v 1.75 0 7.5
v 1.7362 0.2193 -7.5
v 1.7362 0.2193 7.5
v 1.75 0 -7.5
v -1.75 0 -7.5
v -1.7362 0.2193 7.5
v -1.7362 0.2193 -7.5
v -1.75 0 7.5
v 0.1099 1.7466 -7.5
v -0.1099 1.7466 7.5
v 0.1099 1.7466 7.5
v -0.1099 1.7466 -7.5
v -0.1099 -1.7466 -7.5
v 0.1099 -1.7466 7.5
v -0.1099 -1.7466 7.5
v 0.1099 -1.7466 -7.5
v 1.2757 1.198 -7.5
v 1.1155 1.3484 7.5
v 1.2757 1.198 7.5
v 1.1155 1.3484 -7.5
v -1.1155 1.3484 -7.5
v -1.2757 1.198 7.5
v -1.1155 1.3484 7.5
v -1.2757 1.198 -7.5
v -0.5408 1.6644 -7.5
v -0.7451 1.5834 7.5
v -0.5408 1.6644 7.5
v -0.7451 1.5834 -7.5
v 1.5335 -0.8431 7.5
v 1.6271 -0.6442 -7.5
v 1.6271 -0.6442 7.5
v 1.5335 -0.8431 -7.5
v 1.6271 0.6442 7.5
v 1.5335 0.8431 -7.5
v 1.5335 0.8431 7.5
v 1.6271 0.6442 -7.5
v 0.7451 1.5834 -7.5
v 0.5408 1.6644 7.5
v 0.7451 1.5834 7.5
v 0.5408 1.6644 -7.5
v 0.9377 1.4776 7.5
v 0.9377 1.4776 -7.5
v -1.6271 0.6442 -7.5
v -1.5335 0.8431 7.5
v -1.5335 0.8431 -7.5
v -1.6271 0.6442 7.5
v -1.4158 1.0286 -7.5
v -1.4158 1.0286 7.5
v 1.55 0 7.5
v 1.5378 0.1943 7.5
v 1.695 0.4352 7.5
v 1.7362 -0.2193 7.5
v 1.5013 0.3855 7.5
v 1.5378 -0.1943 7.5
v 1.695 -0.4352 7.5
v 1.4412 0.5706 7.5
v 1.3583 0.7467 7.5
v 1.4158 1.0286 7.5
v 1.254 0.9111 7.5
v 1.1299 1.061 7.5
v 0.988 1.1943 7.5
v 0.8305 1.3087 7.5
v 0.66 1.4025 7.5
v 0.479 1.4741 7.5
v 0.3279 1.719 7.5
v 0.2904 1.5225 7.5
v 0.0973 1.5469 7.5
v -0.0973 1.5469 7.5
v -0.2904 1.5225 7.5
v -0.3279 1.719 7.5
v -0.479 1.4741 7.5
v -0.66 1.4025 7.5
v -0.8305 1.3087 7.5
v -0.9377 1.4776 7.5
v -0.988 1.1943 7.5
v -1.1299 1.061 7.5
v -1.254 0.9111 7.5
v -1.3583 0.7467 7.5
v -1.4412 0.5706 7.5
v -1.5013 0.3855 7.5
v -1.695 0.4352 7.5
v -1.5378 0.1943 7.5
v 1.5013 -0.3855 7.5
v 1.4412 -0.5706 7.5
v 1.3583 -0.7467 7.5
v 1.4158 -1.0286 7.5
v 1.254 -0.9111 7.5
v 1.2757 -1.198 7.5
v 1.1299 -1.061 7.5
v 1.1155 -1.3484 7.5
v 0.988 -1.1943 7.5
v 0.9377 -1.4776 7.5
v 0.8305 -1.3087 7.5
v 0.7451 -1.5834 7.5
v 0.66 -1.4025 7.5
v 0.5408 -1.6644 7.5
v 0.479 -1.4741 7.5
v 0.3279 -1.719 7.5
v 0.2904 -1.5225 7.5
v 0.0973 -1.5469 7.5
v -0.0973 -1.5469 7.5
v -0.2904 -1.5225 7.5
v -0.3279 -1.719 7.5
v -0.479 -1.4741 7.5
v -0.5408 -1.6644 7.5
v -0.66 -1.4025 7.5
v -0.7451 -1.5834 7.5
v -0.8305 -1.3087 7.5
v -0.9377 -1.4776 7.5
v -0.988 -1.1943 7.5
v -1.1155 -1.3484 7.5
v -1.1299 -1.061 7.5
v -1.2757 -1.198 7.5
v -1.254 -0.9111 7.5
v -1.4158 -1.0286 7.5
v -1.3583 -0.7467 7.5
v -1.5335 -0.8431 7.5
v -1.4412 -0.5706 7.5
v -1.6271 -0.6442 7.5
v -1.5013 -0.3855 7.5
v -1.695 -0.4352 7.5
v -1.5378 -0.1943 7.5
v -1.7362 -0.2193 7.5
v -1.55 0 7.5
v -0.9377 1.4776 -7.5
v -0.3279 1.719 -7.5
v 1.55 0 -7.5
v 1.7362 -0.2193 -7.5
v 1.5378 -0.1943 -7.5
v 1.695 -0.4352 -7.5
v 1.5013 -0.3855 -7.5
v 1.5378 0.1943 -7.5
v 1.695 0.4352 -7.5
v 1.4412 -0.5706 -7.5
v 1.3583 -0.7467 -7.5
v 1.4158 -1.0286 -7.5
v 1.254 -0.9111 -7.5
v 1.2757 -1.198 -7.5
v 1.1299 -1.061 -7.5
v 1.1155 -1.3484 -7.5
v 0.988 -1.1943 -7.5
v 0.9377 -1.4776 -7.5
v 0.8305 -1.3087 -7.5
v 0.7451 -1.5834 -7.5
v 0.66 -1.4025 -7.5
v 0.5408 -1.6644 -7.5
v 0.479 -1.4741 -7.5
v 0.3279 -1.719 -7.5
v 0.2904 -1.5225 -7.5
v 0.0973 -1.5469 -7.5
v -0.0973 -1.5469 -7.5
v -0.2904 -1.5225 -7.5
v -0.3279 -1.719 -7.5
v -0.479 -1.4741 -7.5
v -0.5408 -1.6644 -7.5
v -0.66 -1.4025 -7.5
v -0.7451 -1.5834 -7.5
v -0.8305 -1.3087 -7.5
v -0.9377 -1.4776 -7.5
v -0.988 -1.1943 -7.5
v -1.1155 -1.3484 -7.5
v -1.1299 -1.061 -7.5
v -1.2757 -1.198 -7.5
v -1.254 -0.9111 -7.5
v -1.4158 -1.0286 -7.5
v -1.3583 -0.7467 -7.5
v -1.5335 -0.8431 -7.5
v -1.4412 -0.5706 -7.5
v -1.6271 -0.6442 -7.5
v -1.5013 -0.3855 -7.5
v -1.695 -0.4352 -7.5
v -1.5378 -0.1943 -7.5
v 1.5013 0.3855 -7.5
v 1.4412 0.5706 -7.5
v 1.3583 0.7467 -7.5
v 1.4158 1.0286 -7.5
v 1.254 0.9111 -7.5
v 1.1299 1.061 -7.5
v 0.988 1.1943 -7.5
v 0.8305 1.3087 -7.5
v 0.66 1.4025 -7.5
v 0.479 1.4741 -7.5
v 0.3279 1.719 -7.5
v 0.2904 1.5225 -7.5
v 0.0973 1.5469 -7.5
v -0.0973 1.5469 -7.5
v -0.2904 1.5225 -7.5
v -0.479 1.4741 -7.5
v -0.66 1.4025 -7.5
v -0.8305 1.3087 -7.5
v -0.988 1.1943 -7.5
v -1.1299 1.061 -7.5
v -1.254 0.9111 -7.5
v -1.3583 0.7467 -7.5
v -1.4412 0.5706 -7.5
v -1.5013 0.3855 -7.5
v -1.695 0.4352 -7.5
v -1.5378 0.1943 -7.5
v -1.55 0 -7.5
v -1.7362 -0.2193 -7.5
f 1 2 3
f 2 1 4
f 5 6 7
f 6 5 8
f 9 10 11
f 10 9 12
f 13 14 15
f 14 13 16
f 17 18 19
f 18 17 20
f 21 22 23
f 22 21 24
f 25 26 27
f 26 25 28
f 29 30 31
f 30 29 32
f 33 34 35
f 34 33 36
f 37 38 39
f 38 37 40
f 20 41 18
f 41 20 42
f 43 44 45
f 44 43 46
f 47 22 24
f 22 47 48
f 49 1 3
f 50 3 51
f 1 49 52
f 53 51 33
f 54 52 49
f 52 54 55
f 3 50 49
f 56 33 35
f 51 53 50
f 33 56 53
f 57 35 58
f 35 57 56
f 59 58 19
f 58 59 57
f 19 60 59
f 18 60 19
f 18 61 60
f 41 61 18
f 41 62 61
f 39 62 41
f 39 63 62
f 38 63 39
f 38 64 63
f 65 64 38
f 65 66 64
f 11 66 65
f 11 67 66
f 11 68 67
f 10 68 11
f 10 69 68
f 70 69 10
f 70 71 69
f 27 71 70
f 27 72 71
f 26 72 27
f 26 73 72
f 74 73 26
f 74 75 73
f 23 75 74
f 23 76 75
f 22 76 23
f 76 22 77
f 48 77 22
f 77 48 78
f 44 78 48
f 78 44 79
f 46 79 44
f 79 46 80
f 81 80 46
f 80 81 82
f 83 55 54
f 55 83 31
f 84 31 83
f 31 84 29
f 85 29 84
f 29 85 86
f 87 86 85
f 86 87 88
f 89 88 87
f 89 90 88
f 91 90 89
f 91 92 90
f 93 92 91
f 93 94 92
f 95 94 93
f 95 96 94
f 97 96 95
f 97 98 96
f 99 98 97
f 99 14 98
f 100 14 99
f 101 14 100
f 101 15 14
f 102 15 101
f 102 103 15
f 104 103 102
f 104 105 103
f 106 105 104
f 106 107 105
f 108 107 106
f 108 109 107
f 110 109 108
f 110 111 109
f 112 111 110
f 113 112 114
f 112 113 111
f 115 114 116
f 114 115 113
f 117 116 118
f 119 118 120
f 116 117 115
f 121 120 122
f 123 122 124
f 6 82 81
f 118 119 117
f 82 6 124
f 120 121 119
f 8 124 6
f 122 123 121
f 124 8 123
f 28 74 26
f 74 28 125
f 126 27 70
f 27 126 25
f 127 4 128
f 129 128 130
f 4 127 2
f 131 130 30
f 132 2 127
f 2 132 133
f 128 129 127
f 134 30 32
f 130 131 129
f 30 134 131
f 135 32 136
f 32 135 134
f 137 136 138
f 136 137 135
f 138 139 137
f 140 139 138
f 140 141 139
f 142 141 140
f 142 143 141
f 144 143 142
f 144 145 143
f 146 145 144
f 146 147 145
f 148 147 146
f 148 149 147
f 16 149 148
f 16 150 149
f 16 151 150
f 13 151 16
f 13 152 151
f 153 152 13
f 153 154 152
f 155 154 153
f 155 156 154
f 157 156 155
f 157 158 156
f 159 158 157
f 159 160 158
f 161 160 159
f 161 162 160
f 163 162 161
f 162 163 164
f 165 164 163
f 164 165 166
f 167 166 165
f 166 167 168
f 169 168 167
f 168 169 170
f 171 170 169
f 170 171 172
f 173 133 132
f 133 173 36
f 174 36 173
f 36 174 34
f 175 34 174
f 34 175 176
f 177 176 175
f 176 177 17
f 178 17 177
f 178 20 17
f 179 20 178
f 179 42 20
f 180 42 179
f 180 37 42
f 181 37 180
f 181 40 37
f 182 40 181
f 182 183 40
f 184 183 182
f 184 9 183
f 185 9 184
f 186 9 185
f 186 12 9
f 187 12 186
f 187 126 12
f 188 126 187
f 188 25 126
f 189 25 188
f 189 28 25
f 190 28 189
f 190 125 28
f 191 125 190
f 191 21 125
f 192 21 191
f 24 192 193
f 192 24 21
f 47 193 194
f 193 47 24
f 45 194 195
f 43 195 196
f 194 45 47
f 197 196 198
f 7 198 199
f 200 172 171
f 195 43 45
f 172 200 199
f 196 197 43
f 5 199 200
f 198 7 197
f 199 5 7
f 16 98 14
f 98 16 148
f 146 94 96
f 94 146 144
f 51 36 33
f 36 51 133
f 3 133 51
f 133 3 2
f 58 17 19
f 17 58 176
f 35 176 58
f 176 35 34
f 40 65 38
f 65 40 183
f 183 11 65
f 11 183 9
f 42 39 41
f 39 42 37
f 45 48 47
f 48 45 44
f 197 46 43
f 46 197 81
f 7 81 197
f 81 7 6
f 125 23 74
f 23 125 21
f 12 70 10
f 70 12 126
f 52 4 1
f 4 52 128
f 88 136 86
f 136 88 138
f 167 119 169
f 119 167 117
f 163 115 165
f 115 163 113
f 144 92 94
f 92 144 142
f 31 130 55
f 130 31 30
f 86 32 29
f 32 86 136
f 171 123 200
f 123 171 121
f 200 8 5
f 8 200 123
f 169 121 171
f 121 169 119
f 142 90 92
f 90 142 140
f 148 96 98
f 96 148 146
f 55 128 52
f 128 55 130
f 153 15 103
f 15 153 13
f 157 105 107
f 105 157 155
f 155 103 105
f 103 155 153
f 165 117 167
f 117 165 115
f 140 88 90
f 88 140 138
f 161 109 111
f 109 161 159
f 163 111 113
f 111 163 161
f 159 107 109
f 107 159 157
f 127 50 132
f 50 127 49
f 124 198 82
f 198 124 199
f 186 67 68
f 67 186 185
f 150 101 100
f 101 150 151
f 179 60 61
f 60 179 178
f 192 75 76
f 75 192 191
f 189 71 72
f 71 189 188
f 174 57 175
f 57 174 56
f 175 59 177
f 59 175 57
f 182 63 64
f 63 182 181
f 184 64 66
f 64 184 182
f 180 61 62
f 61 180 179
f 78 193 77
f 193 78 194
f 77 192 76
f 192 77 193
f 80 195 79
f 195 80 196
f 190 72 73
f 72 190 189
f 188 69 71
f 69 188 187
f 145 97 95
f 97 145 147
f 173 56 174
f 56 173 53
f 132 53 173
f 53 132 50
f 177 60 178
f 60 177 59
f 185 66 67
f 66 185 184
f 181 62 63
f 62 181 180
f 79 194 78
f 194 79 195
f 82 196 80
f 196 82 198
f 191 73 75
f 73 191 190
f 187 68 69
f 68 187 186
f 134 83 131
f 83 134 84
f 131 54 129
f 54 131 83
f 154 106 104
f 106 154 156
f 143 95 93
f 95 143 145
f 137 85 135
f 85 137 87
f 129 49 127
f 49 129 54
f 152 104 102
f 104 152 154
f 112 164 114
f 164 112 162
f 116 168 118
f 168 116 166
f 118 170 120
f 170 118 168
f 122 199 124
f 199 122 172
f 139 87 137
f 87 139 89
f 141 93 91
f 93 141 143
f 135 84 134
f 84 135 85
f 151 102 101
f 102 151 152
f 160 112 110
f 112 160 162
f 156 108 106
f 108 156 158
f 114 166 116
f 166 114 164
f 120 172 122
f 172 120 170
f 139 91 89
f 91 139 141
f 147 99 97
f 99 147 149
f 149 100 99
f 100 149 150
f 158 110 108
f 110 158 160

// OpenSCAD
$fn = 50;


difference() {
	union() {
		translate(v = [0, 0, -7.5000000000]) {
			cylinder(h = 15, r = 1.7500000000);
		}
	}
	union() {
		translate(v = [0, 0, -100.0000000000]) {
			cylinder(h = 200, r = 1.5500000000);
		}
	}
}
